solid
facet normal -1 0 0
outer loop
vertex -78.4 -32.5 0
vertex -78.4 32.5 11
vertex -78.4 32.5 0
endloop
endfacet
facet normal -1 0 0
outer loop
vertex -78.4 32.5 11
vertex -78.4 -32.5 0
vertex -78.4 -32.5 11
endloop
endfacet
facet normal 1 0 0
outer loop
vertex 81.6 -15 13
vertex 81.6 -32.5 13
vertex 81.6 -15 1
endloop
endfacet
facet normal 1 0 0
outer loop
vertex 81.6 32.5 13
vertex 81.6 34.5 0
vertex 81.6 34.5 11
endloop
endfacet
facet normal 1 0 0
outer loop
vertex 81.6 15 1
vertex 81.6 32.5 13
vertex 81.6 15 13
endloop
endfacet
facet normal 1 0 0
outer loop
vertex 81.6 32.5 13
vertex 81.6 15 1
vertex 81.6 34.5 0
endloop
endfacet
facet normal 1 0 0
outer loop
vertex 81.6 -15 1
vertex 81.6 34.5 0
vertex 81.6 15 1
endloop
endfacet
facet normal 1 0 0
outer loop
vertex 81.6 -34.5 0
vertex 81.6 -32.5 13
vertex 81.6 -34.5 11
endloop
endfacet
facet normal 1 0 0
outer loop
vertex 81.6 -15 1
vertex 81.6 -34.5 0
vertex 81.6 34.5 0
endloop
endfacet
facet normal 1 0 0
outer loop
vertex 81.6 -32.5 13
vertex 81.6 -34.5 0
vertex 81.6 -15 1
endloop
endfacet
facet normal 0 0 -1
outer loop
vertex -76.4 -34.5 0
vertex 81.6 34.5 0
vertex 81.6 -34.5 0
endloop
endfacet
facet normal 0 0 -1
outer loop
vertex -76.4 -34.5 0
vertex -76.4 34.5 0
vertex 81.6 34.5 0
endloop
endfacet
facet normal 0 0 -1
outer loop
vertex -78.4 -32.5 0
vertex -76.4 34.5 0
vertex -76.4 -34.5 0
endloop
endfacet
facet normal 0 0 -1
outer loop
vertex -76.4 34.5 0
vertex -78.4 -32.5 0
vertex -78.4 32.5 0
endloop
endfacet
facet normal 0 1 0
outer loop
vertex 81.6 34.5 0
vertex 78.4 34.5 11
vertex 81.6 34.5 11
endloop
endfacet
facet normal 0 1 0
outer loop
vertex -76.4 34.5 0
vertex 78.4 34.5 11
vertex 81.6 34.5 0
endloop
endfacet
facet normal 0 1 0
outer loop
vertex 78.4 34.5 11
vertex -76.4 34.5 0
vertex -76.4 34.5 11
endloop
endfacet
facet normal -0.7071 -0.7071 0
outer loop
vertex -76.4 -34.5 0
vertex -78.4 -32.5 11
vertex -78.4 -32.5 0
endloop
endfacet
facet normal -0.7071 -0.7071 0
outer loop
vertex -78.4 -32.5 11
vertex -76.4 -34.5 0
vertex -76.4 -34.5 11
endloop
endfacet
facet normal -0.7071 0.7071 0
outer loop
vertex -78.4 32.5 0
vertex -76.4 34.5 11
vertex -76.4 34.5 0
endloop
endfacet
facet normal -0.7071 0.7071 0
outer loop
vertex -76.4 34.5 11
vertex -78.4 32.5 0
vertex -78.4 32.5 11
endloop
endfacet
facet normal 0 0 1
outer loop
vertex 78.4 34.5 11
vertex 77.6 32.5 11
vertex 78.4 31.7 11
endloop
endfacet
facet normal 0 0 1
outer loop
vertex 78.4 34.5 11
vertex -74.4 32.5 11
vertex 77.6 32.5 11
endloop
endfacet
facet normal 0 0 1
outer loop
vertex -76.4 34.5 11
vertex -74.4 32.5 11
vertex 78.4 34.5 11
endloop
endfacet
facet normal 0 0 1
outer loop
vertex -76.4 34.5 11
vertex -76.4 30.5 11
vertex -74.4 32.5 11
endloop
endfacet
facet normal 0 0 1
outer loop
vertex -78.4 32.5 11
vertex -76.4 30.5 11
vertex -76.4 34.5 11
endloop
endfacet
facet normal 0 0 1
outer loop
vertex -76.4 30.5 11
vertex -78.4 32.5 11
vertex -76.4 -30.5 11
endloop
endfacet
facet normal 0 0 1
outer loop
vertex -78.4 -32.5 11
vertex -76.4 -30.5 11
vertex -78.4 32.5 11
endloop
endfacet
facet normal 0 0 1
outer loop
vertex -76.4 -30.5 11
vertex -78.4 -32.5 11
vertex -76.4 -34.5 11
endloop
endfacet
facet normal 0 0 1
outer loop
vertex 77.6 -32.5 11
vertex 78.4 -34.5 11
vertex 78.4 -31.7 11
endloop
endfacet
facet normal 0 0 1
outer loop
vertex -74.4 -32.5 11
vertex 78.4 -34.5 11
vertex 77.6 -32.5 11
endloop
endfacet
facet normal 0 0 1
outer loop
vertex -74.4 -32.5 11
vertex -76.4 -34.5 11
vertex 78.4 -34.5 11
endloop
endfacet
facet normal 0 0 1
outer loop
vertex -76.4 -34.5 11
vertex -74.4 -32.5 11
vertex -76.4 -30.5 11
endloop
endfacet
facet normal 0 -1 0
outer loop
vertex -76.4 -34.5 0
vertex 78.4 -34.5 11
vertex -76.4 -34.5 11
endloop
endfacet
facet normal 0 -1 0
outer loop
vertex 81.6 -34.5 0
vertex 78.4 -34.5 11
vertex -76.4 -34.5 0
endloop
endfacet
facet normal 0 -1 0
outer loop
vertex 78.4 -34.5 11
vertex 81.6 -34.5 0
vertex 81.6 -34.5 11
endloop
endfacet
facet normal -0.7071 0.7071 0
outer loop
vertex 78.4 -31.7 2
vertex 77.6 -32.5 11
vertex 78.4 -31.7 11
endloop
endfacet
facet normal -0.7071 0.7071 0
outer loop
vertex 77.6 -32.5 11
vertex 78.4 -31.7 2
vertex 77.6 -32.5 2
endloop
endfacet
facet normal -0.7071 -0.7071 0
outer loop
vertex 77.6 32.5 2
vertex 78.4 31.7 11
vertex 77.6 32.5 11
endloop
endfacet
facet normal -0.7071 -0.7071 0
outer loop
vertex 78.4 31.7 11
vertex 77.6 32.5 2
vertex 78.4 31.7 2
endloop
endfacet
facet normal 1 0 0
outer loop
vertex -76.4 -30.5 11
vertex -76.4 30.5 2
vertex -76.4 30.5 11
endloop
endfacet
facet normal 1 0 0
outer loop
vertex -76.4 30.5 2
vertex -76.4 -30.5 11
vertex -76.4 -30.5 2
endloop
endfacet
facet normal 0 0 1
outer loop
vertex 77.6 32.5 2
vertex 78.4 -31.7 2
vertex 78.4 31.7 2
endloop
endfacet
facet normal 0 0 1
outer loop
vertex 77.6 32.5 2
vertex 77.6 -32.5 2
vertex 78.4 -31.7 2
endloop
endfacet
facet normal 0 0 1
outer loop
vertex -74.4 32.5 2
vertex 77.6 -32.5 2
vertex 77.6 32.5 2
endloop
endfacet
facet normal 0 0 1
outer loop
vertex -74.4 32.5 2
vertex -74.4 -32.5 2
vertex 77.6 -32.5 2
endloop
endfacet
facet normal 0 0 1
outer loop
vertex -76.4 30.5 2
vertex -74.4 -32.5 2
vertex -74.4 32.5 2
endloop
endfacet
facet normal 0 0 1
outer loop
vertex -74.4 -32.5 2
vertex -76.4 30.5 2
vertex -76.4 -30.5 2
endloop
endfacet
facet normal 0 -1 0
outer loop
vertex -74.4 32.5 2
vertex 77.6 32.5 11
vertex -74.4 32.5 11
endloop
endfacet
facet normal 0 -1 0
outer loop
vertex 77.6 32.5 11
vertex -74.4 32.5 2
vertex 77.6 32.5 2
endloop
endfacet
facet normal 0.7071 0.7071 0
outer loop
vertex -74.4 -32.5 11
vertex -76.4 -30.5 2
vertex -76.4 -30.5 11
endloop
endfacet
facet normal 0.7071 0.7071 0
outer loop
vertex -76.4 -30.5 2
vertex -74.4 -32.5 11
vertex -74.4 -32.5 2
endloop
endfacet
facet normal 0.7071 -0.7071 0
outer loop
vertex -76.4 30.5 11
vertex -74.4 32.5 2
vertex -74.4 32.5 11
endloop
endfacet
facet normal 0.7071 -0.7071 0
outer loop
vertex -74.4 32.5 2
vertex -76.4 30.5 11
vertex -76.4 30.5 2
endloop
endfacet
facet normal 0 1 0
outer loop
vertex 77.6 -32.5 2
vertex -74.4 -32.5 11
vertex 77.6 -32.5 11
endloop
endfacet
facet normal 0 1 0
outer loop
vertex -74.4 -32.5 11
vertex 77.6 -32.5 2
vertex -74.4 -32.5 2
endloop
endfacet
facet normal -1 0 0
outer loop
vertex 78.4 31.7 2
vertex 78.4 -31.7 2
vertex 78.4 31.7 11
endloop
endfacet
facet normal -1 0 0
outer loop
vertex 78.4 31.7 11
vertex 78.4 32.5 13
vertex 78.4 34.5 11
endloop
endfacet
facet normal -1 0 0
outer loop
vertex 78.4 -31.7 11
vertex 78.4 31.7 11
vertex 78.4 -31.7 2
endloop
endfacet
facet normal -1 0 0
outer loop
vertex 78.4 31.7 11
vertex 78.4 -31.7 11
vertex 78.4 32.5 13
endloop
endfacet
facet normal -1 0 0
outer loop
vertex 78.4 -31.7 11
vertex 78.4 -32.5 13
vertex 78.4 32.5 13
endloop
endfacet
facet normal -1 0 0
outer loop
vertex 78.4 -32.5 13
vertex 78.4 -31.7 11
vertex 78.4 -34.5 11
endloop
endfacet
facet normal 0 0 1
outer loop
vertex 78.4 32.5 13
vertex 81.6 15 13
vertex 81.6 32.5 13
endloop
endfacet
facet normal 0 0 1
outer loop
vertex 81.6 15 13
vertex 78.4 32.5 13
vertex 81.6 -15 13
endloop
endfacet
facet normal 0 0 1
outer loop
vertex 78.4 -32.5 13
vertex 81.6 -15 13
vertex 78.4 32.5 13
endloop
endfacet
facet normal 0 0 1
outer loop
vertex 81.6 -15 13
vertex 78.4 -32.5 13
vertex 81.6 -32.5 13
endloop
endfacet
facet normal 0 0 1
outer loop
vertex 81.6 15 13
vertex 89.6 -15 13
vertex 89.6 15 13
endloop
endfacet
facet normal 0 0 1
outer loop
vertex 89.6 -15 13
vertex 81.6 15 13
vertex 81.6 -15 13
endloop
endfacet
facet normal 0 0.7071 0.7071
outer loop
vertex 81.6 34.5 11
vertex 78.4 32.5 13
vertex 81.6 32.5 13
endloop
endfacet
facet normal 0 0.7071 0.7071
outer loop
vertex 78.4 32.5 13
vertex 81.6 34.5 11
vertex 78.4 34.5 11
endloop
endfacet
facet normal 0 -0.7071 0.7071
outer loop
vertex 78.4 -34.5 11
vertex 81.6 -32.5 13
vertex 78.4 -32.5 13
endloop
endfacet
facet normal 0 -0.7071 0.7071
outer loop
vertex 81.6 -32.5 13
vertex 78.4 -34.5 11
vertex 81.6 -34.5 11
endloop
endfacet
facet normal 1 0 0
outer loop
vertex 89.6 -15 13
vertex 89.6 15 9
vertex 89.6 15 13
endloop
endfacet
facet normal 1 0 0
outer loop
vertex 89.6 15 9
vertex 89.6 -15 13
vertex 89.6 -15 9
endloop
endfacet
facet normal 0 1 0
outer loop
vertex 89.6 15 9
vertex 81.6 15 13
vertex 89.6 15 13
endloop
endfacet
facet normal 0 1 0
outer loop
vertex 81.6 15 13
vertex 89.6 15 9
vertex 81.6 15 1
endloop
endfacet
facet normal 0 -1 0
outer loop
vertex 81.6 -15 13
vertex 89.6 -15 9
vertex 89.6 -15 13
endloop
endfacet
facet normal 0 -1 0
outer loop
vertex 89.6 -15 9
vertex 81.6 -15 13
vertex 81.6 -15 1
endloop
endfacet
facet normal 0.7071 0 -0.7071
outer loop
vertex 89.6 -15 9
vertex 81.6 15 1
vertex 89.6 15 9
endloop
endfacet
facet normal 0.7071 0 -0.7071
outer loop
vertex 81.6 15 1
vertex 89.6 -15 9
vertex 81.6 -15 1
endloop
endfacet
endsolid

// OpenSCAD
// Pull-out drip tray only — prints as modelled, flat on the bed, basin
// up. See marsh_repot_016.scad.
include <marsh_repot_016.scad>
part = "tray";
